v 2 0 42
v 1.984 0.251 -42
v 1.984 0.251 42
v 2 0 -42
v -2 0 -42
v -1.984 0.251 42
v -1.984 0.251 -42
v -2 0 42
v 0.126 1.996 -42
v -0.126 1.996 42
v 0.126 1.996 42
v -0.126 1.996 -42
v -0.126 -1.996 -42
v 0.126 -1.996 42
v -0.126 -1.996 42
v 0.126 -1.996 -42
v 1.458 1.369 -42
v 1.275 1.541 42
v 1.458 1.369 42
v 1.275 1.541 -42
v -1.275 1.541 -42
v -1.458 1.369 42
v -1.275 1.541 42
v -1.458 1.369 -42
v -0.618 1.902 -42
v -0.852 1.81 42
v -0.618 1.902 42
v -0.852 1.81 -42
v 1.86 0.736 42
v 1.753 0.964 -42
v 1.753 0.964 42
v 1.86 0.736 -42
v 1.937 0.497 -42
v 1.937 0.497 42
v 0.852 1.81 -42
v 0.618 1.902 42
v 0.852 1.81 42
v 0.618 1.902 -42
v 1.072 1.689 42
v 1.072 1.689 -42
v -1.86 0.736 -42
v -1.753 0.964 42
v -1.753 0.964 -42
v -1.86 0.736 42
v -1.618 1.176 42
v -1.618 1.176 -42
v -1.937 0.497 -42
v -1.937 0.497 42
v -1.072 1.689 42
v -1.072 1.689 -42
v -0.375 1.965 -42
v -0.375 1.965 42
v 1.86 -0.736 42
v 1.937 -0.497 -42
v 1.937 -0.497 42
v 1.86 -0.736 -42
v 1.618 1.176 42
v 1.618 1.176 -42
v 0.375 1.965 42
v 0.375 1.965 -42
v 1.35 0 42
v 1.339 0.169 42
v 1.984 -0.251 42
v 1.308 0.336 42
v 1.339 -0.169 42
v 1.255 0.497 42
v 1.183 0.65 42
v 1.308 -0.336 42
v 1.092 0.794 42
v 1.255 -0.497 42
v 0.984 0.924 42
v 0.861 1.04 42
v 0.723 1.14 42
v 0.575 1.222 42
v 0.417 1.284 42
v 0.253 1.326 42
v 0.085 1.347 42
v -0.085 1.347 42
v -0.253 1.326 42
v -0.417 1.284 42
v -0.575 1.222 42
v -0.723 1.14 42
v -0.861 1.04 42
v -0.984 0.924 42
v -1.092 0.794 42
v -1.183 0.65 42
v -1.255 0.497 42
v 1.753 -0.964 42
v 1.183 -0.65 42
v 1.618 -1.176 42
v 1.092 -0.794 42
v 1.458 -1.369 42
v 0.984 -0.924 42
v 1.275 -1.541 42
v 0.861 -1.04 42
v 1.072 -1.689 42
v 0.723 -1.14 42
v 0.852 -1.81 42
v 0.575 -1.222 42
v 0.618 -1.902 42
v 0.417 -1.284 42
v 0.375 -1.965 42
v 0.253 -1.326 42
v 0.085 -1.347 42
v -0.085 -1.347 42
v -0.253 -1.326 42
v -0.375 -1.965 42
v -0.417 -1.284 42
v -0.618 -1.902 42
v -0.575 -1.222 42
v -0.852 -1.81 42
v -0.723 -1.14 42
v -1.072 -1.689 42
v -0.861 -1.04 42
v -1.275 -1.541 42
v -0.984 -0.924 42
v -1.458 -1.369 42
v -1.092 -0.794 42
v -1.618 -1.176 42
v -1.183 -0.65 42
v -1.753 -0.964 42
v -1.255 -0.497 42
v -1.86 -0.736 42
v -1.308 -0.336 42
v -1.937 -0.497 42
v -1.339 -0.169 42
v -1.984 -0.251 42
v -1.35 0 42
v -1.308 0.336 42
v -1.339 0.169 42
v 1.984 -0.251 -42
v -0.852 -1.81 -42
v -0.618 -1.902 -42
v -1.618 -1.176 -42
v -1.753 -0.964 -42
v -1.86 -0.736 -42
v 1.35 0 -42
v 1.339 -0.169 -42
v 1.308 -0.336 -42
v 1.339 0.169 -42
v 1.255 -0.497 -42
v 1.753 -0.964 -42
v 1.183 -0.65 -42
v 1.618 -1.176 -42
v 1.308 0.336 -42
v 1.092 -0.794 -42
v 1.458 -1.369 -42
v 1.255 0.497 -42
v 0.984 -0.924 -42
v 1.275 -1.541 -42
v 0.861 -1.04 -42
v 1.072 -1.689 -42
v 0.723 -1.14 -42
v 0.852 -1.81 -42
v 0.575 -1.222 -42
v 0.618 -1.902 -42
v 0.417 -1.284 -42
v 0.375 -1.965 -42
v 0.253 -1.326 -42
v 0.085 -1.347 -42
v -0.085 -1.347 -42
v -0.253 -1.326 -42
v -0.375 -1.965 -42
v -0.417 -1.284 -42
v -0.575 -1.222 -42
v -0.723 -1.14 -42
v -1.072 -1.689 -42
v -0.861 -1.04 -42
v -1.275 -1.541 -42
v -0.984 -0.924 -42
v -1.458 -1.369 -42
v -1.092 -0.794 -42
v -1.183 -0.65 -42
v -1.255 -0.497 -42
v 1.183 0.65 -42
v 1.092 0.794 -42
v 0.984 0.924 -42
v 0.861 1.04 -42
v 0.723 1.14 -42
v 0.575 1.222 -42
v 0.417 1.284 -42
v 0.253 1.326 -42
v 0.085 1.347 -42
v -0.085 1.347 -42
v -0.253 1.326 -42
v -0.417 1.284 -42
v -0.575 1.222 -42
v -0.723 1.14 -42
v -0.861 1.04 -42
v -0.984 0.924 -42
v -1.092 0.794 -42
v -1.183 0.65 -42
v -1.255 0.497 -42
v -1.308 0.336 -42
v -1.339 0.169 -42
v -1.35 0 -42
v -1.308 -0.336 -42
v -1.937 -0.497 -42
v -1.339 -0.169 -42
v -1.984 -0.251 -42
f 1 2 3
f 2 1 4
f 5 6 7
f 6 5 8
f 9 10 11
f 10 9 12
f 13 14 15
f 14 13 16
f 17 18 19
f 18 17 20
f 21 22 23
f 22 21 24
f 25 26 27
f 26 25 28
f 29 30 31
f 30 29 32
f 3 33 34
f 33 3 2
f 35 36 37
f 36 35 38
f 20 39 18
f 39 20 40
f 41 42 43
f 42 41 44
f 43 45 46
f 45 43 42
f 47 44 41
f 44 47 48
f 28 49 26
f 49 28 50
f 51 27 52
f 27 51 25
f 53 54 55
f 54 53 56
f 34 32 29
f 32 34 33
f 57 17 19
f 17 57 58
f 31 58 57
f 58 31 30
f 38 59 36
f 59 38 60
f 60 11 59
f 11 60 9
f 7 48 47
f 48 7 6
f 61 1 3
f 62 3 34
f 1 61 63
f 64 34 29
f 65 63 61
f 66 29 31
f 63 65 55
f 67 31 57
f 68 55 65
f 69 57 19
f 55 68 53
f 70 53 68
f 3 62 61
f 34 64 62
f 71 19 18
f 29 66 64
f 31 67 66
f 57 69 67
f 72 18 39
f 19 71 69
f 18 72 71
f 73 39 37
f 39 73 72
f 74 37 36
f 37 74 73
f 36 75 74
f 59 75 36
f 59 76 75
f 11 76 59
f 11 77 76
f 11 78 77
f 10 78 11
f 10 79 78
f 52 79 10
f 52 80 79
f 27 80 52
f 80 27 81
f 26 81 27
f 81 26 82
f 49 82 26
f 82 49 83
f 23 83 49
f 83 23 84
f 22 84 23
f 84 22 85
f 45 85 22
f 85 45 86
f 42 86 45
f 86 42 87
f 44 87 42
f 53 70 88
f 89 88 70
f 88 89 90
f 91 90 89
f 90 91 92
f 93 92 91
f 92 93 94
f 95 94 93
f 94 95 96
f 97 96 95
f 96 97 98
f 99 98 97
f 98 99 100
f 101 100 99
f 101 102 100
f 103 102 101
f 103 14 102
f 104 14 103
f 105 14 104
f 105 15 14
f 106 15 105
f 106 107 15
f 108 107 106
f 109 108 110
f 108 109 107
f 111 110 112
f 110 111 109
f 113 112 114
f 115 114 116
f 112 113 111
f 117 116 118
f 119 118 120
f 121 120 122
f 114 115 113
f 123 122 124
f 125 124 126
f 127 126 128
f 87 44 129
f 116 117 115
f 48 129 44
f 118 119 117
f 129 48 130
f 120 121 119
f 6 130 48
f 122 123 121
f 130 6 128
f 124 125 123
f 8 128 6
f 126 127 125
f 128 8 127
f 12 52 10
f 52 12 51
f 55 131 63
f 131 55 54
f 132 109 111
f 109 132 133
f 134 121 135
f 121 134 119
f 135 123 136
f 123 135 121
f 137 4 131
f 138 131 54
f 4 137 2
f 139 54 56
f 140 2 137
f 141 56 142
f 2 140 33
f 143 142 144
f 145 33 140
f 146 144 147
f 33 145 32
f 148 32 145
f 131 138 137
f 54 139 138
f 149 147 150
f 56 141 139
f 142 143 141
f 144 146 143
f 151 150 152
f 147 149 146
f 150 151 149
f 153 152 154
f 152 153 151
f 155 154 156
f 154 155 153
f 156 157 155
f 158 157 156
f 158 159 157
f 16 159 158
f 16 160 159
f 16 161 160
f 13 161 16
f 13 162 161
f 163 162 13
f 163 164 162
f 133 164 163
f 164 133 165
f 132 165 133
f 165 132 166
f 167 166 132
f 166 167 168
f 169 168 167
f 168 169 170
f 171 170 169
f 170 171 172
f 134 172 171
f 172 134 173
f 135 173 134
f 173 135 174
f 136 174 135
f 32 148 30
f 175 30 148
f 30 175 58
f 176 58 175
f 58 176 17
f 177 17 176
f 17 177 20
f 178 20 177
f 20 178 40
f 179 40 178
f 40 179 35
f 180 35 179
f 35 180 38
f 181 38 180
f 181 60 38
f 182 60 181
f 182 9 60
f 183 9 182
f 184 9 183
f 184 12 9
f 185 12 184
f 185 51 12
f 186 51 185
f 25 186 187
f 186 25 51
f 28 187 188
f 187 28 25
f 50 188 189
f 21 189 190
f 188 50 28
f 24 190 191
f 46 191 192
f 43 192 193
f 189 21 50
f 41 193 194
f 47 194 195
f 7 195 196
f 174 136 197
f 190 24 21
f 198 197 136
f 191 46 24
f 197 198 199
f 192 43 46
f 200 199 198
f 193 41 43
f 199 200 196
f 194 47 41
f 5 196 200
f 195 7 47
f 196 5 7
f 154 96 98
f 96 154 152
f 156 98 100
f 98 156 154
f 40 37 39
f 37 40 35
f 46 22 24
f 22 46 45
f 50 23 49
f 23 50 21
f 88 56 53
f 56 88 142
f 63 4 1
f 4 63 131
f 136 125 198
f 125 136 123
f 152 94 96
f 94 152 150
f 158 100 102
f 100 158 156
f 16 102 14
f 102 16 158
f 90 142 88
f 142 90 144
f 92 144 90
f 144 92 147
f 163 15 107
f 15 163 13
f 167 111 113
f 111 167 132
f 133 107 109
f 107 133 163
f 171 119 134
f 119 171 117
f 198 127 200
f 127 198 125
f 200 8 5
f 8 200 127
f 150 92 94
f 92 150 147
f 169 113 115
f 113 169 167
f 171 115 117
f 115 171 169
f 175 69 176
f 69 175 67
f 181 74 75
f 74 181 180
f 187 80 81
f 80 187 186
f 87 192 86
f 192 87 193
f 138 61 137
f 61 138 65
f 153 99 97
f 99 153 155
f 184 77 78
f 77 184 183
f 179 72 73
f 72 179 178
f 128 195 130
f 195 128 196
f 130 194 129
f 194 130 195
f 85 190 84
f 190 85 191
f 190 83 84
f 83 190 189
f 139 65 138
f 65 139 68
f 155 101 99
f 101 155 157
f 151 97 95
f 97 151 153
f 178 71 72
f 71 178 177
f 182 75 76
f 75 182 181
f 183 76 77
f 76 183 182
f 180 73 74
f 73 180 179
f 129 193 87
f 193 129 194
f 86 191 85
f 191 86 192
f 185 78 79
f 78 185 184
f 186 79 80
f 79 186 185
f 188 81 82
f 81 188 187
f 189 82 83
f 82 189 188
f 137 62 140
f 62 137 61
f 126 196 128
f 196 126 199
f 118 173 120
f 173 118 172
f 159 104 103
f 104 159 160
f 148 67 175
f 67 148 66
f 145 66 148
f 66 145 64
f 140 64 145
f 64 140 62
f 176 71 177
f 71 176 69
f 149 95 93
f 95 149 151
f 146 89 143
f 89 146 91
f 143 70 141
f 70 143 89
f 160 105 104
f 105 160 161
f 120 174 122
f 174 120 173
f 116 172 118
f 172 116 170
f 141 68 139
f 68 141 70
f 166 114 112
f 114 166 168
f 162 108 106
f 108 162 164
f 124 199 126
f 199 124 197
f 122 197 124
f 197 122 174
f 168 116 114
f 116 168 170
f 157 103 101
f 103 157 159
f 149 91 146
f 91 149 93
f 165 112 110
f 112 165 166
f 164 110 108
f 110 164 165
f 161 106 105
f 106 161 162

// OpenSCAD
$fn = 50;


difference() {
	union() {
		translate(v = [0, 0, -42.0000000000]) {
			cylinder(h = 84, r = 2.0000000000);
		}
	}
	union() {
		translate(v = [0, 0, -100.0000000000]) {
			cylinder(h = 200, r = 1.3500000000);
		}
	}
}
